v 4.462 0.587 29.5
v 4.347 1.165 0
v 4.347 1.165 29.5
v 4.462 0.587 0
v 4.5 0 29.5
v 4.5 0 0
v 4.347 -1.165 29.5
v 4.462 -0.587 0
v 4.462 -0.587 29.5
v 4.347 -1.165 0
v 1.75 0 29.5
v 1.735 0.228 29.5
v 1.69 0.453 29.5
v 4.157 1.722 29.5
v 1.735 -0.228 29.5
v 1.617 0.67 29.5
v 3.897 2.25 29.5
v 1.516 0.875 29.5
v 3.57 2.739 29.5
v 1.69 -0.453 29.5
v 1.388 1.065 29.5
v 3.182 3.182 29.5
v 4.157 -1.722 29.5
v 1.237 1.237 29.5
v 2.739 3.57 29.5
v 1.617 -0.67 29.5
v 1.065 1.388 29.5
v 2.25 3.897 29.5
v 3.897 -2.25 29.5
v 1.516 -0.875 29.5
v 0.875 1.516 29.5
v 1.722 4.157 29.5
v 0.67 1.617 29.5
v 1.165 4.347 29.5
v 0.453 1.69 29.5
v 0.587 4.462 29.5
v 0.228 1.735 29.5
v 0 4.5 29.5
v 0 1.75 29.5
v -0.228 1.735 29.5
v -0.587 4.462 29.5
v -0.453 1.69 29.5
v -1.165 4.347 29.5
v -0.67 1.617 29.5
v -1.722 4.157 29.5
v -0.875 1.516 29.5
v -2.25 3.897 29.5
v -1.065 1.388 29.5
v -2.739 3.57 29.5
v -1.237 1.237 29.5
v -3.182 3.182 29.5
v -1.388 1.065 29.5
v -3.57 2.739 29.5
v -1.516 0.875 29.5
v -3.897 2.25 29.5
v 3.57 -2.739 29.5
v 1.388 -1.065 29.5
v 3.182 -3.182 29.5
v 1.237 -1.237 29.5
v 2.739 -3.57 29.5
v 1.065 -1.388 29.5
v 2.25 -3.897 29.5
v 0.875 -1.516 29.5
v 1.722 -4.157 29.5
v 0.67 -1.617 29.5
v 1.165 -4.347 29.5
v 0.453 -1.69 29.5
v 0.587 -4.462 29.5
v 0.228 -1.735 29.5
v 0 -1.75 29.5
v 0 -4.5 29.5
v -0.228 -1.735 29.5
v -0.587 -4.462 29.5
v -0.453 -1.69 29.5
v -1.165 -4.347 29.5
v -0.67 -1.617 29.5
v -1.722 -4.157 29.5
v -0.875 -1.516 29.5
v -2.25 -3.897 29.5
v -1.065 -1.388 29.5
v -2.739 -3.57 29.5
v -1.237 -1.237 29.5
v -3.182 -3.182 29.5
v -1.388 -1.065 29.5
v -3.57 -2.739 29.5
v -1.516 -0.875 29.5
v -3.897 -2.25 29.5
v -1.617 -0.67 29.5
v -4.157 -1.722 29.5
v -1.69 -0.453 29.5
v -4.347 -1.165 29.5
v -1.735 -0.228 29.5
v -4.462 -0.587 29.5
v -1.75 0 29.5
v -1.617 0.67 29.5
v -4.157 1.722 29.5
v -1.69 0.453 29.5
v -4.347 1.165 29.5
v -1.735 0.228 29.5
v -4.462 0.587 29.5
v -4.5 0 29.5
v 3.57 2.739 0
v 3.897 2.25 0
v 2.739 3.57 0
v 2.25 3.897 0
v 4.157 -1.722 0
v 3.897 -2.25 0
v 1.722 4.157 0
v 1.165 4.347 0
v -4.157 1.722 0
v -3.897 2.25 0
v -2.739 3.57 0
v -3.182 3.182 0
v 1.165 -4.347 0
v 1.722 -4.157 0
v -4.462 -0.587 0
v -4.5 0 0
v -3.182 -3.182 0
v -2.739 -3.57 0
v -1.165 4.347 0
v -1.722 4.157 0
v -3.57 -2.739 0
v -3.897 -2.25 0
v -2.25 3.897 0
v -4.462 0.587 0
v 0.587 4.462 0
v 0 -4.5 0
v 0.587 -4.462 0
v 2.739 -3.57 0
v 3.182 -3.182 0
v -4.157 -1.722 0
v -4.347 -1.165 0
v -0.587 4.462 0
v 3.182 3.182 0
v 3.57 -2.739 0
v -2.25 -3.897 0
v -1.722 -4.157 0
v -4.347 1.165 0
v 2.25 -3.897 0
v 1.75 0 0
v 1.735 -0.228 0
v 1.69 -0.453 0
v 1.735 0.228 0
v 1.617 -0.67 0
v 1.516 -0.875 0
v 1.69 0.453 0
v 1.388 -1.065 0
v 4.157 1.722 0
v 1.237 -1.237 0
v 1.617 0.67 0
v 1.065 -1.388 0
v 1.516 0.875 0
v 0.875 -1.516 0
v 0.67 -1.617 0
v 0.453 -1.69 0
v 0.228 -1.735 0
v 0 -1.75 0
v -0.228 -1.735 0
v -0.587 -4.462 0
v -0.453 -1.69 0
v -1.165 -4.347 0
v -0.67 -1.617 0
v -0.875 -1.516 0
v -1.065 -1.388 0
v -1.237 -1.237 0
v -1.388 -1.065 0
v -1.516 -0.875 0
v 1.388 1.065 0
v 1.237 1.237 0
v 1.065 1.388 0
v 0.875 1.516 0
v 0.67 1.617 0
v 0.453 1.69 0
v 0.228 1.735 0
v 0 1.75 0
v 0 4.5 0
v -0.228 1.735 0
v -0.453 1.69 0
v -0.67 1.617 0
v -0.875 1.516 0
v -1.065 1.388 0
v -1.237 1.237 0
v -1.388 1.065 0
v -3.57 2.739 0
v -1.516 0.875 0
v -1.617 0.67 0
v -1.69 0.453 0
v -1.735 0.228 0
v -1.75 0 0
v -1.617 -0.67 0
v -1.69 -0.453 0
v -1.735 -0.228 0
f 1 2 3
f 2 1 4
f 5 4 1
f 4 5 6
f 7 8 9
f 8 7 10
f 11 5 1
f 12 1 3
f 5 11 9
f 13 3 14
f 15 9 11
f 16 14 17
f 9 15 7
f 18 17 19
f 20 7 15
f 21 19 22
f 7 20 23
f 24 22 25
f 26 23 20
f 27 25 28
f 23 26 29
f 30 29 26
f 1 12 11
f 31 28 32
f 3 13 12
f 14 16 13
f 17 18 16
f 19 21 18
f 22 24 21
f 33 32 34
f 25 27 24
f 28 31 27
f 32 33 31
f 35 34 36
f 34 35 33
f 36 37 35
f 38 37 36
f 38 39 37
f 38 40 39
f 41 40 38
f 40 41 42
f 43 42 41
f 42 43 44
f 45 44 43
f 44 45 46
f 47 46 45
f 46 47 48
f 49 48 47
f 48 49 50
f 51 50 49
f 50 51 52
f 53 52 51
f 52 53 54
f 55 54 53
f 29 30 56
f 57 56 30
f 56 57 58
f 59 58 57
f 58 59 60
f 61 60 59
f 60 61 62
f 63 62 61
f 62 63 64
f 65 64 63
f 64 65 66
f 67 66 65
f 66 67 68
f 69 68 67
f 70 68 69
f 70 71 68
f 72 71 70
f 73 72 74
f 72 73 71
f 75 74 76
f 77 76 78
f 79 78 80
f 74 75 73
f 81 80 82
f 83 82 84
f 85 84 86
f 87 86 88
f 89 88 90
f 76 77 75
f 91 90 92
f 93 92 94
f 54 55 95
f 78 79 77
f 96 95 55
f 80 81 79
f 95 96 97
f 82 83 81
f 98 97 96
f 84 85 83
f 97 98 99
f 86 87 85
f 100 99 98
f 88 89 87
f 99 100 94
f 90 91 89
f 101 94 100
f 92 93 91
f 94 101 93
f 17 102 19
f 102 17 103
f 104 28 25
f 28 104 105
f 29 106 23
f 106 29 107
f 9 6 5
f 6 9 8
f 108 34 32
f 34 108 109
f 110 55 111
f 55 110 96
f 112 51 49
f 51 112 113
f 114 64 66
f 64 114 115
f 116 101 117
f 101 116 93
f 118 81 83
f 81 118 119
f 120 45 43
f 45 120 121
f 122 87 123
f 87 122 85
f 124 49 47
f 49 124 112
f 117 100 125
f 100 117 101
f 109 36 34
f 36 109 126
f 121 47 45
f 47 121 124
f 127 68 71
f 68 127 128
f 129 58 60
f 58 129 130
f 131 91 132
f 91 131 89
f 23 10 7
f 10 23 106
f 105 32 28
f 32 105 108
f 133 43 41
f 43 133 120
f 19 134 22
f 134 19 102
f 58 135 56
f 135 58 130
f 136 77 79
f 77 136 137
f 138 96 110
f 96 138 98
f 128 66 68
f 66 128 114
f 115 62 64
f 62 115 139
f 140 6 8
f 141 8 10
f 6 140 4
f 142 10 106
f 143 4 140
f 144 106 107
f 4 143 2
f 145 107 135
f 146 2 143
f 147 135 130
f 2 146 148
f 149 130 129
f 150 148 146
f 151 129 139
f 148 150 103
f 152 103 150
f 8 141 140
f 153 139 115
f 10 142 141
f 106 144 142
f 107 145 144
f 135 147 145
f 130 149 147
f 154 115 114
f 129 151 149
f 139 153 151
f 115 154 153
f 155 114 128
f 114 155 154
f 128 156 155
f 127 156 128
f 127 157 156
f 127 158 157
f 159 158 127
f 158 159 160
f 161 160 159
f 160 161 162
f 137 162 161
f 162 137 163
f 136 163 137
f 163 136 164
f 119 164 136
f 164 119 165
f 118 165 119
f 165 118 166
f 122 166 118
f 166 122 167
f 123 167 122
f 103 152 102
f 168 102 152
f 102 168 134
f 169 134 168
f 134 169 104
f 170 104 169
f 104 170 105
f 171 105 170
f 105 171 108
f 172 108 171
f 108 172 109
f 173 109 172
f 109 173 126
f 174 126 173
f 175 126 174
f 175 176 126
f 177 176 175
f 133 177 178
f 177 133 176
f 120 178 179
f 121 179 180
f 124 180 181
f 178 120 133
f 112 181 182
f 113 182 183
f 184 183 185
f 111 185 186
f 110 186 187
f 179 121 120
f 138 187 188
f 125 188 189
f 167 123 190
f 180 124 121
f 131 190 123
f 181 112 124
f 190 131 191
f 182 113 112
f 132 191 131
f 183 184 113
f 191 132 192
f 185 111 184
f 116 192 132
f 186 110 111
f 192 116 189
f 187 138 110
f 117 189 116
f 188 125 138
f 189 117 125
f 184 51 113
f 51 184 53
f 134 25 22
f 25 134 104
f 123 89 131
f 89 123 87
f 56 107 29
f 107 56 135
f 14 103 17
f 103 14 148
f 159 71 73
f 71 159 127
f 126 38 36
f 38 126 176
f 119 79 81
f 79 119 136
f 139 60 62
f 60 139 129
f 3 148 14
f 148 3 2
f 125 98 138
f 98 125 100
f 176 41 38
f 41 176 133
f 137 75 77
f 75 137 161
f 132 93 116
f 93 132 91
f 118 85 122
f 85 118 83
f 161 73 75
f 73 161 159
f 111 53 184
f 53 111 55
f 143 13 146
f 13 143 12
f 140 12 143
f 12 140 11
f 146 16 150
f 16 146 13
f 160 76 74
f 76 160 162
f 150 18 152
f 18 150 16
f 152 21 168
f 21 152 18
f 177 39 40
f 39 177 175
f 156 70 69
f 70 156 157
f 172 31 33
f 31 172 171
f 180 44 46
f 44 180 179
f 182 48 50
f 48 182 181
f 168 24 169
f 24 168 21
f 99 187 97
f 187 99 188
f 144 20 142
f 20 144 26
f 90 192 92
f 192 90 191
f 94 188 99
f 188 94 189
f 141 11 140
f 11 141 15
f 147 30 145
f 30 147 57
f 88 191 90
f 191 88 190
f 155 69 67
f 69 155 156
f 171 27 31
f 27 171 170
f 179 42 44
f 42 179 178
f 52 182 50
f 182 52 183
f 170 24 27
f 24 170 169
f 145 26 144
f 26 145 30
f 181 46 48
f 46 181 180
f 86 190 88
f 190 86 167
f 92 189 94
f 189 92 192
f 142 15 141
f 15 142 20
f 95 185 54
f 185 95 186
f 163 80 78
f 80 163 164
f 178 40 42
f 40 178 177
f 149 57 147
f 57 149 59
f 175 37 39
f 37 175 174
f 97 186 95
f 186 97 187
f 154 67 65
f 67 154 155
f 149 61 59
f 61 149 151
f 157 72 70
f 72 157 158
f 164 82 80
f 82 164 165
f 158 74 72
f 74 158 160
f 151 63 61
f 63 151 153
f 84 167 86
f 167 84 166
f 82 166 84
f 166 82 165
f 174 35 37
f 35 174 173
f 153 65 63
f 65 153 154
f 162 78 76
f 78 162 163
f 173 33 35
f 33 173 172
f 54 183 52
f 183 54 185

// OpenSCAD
// file: parameters.scad
// =============================================================================
// Gen-BS — nightly 2026-10-09 (physics_scorer, honest magpylib watts)
// Pull the whole machine 2 mm inward: poles at R48 (was R50) with 26–68 mm bobbins and an 18.5 mm build. Shorter mean turn length lets each coil hold 612 turns on about 356 m of copper — ~14 m less than Gen-BO, which leaves real slack on a ~390 m spool for leads, a re-wind or a short spool — for about 1.7 % less power. Same Ø134 steel discs as Gen-BO.
// Clocking 0 deg (magnets N facing S) + D-flat keyed bore + index notch + flip-symmetric hole map.
// Windable 2-piece bobbin; turns = physics_scorer turns_fit; copper only between flanges.
// Steel back-iron: 2× Ø134 × 4.76 mm (3/16") mild-steel discs (steel_backiron_disc.dxf); magnets sit ON the steel
// (through-pockets) -> score with --back-iron.
// =============================================================================
topology            = "dual_rotor";

// --- Wire / winding (physics_scorer winding-fit) -------------------------------
wire_awg            = 26;
wire_od             = 0.45;     // insulated OD mm (bare 0.405)
fill_realistic      = 0.65;     // insulated-wire area / window (DENSE layered wind with a jig; scorer cap 0.65)
turns               = 612;       // = physics_scorer turns_fit (do NOT raise)
coil_former_type    = "bobbin";
coil_core_inset     = 18.50;     // radial copper build: hub = copper boundary inset by this
wind_build_axial    = 0.0;      // nothing proud of the flanges
wind_build_radial   = 0.0;

// --- Bobbin (base + lid) ---------------------------------------------------------
coil_id_r           = 26.00;    // copper boundary sector
coil_od_r           = 68.00;
span_deg            = 52.72;    // = pitch - 2*asin((wall+0.85)/coil_id_r) -> >=1.2 mm stator web
former_web          = 8.10;     // copper height between flanges (TALL copper: steel keeps Bz up)
flange_t            = 0.80;     // >= 0.8 mm FDM wall rule (tall winds push on the flanges)
wall                = 0.80;     // flange lip beyond copper
former_bare_h       = former_web + 2 * flange_t;
coil_envelope_h     = former_bare_h + 2 * wind_build_axial;
tab_w               = 7.0;
tab_len             = 7.0;
tab_h               = former_bare_h / 2;
pin_d               = 1.9;      // 1.75 mm filament locating pin
coil_mount_r        = coil_od_r + 0.2 + 4.0;
lead_y              = 1.6;
lead_slot_w         = 0.9;
lead_groove_d       = 0.6;

// --- Gap -------------------------------------------------------------------------
run_clear           = 0.50;     // rotor face -> flange
gap_spacer_h        = run_clear + wind_build_axial;
m2m                 = coil_envelope_h + 2 * run_clear;   // rotor face to rotor face (= gap_sleeve length)

// --- Stator ----------------------------------------------------------------------
coil_stations       = 6;
bay_clear           = 0.25;
stator_thick        = former_bare_h;                        // bobbins flush both faces
stator_od           = 156.0;
shaft_clear_stator  = 14.0;     // stator is static; gap sleeve OD 12 spins inside

// --- Rotor(s) --------------------------------------------------------------------
magnet_Br           = 1.43;     // N52
magnet_d_large      = 20.0;
magnet_h_large      = 5.0;      // one O20x5 per pocket
magnet_h_small      = 5.0;      // one O5x5 per pocket
halbach_magnetisation = "diametric"; // O5x5 assist magnets MUST be DIAMETRICALLY magnetised (tangential)
rotor_b_same_axis   = true;     // same-index magnets share one axis: N faces S across the gap
large_pocket_d      = 20.3;
small_pocket_d      = 5.3;
pocket_h            = 5.00;     // THROUGH the carrier: magnet back face sits on the steel disc (FLUSH seat: carrier = magnet height, magnet face level with the rotor face)
large_n             = 8;
R_large             = 48.0;
R_small_inner       = 41.8;
R_small_mid         = 48.0;
R_small_outer       = 54.2;
small_r_list        = [R_small_inner, R_small_mid, R_small_outer];   // O5 pockets between poles
carrier_od          = 134.0;
carrier_thick       = pocket_h;
hub_h               = 12.0;     // > steel_t + insert: radial set-screw clears the steel
hub_od              = 24.0;     // slim hub so the M4 brace rods fit at R~18 inside the coil ring
hub_insert_d        = 4.0;      // M3 heat-set insert, radial, bears on the D-flat
rotor_b_offset_deg  = 0.0;      // CLOCKING: magnets directly opposite
shaft_key           = "dflat";
dflat_depth         = 0.5;      // 8 mm shaft with 0.5 mm flat (7.5 across flat)
index_notch_d       = 3.0;

// --- Steel back-iron (buyable laser-cut) -------------------------------------------
steel_t             = 4.76;      // mild steel thickness (image method ignores it; sized from steel_flux.py so the return path stays well below saturation)
steel_center_hole   = 26.0;     // slips over the rotor hub (OD 24)
steel_od            = carrier_od;   // steel disc OD = rotor carrier OD

// --- Modular MAX interface ----------------------------------------------------------
shaft_bore          = 8.35;
dflat_x             = 4.0 - dflat_depth + (shaft_bore - 8.0) / 2;
bearing_d           = 21.85;
bearing_h           = 7.2;
m3_clear            = 3.5;
bolt_r_inner        = 30.0;     // M3 steel-disc clamp bolts (inside the magnet ring)
bolt_n_inner        = 4;
bolt_inner_angles   = [0, 90, 180, 270];
bolt_r_outer        = 63.0;     // M3 steel-disc clamp bolts (outside the magnet ring)
bolt_outer_angles   = [45, 135, 225, 315];
flange_bolt_r       = 73.0;     // frame rods: OUTSIDE the rotor OD (rotors spin inside them)
flange_bolt_n       = 6;
flange_bolt_offset  = 30.00;    // between coil stations -> never cuts a lead groove/tab
brace_r             = 18.0;
brace_d             = 4.3;      // temporary M4 jack rods (assembly only)
brace_n             = 4;
brace_angles        = [45, 135, 225, 315];          // flip-symmetric

spacer_pad_od       = 14.0;
spacer_pad_id       = m3_clear;
endbell_od          = 156.0;
endbell_thick       = 8.0;
endbell_shaft_clear = 10.0;
collar_h            = 10.0;
standoff_od         = 9.0;
frame_standoff_h    = run_clear + carrier_thick + hub_h + collar_h + 2.0;
sleeve_od           = 12.0;
plate_max_mm        = 410;

$fn = 64;
// main file
// Gen-BS — frame standoff tube between stator and an endbell, on each M3 frame rod (outside rotor OD).
// Print x12. Height = frame_standoff_h (rotor + steel + hub + collar + running clearance).
include <parameters.scad>;
$fn = 48;
difference() {
    cylinder(d=standoff_od, h=frame_standoff_h);
    translate([0, 0, -0.1]) cylinder(d=m3_clear, h=frame_standoff_h + 0.2);
}
